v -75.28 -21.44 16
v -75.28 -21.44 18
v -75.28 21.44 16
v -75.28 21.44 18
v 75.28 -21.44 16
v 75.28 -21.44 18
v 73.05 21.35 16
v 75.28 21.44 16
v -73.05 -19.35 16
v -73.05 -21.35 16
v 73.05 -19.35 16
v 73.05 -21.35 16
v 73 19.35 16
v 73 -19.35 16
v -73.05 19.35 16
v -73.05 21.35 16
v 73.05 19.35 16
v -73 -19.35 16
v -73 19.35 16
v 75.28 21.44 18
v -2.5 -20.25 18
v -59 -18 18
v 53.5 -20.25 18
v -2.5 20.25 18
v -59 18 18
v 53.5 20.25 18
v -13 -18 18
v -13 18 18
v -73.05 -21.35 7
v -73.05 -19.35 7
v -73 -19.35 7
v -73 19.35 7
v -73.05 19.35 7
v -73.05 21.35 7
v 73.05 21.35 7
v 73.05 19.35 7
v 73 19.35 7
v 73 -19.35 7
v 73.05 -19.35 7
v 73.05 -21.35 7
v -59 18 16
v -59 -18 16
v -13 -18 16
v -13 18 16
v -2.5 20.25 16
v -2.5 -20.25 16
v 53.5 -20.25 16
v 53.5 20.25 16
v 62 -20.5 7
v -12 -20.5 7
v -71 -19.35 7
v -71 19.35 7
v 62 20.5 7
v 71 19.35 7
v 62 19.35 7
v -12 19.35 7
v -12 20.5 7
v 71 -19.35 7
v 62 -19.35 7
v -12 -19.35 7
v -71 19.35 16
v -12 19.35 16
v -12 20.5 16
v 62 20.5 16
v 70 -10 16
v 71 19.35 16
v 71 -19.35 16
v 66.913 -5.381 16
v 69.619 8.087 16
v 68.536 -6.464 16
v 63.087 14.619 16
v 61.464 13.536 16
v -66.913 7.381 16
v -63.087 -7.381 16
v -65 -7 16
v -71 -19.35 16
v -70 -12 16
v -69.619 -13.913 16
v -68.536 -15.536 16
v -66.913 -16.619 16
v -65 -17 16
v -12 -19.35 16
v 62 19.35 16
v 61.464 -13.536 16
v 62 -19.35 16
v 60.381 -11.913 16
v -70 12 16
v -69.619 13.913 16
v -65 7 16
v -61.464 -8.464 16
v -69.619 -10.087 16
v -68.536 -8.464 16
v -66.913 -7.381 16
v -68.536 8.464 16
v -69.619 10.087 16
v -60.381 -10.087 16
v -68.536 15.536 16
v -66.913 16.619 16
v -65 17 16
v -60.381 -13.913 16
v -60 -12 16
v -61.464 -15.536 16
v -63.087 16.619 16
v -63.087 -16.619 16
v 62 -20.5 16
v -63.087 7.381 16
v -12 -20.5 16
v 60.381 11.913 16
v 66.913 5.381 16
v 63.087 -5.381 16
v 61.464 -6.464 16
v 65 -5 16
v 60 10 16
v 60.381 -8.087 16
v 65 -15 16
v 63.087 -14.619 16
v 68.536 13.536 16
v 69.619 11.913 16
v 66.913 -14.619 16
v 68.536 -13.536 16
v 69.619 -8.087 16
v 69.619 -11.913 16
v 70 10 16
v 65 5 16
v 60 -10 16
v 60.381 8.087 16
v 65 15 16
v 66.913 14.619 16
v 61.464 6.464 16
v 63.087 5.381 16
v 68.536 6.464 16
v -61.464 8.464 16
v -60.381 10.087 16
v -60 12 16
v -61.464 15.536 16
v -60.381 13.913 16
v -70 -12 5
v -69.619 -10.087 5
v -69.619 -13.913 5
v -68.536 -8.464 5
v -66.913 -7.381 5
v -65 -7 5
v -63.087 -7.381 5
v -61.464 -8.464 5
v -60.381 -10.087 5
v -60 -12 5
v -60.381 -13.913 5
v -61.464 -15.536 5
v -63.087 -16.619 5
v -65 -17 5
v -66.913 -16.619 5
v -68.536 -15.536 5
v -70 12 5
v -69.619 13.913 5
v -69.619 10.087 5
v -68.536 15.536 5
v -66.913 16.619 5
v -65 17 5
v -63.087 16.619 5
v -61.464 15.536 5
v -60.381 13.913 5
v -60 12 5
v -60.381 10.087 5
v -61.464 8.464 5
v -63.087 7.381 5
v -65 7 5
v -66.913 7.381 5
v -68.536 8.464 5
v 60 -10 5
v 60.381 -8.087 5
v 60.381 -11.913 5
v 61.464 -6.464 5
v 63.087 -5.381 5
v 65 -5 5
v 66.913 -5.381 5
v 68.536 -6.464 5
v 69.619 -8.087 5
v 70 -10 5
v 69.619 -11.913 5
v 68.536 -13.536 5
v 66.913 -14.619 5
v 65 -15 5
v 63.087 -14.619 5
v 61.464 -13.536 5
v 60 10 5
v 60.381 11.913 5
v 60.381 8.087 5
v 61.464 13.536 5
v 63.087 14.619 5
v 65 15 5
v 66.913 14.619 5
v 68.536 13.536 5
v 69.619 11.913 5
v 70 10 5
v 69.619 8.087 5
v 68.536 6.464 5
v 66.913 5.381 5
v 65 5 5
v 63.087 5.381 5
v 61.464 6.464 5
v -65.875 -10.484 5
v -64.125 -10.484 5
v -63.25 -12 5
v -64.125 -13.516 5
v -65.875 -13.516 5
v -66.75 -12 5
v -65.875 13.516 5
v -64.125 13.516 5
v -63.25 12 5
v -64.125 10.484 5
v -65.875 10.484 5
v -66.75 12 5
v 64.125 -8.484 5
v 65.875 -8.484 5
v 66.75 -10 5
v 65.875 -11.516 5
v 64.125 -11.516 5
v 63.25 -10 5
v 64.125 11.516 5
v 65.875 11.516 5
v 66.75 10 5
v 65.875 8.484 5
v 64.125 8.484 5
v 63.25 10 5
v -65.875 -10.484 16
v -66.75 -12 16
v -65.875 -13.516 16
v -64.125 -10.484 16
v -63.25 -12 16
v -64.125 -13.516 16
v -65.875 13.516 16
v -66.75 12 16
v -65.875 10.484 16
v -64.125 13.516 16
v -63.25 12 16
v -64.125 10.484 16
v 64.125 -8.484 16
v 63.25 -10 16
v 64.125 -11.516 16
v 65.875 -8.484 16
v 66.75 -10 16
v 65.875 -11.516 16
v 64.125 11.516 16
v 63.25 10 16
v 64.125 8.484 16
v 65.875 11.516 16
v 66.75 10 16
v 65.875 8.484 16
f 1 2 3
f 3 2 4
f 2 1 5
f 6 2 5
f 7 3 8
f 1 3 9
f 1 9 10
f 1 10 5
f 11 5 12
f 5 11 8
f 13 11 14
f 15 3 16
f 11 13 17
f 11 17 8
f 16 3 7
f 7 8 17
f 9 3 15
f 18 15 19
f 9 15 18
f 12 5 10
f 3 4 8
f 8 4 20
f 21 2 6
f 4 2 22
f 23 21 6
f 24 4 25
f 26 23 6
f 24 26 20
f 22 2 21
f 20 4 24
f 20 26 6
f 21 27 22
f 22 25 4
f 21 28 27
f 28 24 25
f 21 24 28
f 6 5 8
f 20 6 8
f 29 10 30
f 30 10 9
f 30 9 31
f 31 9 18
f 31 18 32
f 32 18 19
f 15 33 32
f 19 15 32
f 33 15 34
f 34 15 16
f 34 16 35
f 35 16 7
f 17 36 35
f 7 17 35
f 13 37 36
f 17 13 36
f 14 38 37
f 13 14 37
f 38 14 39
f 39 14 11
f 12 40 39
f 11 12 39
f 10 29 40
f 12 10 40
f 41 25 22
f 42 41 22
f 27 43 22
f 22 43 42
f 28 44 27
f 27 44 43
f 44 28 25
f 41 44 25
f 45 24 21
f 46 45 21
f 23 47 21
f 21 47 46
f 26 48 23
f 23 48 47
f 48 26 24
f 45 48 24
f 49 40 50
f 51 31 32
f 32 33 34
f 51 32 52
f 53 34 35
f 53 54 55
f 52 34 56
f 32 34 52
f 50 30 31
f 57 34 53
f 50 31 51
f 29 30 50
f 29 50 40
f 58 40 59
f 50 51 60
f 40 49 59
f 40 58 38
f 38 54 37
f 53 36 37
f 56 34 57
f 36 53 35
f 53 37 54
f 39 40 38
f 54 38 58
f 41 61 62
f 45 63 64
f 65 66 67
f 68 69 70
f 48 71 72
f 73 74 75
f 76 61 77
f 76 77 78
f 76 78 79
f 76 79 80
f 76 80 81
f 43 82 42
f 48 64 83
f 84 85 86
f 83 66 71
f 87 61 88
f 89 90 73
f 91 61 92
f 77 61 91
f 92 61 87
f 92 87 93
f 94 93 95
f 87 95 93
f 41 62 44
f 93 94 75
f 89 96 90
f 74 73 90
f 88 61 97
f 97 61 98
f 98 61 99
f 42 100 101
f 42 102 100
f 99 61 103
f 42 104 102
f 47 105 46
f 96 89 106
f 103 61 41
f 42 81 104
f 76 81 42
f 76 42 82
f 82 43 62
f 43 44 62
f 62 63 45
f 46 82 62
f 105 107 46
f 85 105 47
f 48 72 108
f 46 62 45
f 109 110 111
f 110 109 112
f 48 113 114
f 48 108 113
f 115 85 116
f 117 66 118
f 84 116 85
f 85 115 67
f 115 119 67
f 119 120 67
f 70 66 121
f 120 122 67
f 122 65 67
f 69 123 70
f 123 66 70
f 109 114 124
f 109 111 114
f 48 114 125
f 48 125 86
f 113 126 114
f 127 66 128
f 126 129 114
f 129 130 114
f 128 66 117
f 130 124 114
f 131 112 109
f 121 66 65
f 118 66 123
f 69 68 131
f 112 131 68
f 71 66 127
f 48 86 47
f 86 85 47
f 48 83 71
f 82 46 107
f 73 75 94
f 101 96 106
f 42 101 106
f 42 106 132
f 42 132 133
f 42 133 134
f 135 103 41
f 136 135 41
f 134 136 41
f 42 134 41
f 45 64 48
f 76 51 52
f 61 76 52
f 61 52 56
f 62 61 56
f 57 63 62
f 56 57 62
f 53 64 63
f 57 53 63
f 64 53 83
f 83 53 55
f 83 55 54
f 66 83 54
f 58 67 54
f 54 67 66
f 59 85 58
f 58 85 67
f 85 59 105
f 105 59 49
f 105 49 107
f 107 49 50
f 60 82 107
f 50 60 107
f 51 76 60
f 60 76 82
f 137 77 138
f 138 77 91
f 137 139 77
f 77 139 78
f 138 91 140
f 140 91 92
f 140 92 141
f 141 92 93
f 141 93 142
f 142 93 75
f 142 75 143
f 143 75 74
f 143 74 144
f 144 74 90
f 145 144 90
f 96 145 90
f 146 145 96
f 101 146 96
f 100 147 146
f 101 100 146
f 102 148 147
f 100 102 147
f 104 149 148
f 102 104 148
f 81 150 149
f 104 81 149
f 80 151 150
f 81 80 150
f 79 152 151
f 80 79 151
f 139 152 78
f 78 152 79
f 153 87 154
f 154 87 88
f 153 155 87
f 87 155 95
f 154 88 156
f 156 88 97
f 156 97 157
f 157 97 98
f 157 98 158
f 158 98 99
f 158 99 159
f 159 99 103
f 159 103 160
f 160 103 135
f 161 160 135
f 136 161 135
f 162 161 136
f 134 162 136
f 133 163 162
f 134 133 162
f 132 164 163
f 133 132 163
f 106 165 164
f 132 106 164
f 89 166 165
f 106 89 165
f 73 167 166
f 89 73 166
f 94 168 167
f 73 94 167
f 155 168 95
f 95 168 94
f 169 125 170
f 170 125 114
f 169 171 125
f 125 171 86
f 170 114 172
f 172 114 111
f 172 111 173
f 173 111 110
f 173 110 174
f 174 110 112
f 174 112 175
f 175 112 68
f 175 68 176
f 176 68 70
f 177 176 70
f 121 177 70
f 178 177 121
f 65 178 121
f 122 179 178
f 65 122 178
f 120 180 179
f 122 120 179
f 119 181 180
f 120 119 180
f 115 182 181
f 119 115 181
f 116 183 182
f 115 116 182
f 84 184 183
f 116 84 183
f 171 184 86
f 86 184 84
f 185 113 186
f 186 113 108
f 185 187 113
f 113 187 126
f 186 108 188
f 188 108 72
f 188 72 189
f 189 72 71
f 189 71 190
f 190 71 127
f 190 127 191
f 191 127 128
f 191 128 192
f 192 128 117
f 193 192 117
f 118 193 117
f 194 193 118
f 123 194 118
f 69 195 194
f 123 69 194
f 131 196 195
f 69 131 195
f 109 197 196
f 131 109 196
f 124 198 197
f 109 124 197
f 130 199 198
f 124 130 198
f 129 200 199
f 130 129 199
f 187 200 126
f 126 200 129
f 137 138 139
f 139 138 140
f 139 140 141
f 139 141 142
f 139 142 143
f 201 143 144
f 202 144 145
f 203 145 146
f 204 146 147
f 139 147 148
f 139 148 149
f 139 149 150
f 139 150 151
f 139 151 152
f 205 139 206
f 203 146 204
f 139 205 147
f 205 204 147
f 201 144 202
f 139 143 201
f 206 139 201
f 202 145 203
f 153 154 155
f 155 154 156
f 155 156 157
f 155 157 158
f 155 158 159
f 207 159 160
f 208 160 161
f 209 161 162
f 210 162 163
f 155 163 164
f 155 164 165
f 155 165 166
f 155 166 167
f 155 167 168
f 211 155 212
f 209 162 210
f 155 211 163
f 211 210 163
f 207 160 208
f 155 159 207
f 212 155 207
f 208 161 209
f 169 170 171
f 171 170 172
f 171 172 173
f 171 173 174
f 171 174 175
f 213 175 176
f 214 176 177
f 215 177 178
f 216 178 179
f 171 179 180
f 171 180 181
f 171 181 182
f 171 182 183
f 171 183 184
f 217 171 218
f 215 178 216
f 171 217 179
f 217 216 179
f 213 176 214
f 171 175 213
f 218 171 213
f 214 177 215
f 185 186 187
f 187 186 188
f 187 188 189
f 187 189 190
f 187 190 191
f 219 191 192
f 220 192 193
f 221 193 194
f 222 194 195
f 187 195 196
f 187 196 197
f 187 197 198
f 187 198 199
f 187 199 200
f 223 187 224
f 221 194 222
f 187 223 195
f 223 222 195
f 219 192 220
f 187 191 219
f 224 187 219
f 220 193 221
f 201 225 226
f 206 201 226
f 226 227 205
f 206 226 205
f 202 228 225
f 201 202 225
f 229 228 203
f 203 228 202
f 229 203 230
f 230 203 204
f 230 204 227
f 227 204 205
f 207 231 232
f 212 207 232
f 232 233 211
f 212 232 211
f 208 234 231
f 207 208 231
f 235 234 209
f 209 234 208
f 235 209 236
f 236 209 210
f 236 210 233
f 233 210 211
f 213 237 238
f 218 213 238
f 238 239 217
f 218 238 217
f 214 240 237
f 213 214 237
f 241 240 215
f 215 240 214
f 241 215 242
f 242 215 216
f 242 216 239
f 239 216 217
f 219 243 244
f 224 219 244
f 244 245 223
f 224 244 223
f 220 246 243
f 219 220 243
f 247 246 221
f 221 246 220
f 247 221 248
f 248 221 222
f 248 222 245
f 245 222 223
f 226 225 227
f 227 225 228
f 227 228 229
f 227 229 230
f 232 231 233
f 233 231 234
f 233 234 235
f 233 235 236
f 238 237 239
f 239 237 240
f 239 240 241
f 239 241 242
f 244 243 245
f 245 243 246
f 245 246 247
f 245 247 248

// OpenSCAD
module trim_tftFacePlate_facia(){
	difference(){
		//mainBox
		translate([0,0,17]){
			color([0.6,0.8,0.2]) cube(size=[150.56,42.88,2],center=true);
		}
		//displayHole
		translate([25.5,0,16.75]){
			color([0.2,0.8,0.2]) cube(size=[56,40.5,5],center=true);
		}
		//keyPadHole
		translate([-36,0,16.75]){
			color([0.2,0.8,0.2]) cube(size=[46,36,5],center=true);
		}
	}
	//topAndBottomTrim
	difference(){
		translate([0,-20.35,12]){
			color([.3,.5,.2]) cube(size=[146.1,2,10],center=true);
		}
		translate([25,-17.5,10]){
			color([.3,.1,.2]) cube(size=[74,6,17],center=true);
		}
	}
	difference(){
		translate([0,20.35,12]){
			color([.3,.5,.2]) cube(size=[146.1,2,10],center=true);
		}
		translate([25,17.5,10]){
			color([.3,.1,.2]) cube(size=[74,6,17],center=true);
		}
	}
	//sideTrim
	translate([-72,0,12]){
		color([.3,.5,.2]) cube(size=[2,41.3,10],center=true);
	}	
	translate([72,0,12]){
		color([.3,.5,.2]) cube(size=[2,41.3,10],center=true);
	}	
	difference(){
		//screwBlocks
		translate([-65,12,11]){
			cylinder(r=5,h=12,center=true);
		}
		//screwHoles
		translate([-65,12,11]){
			cylinder(r=1.75,h=15,center=true);
		}
	}
	difference(){
		translate([-65,-12,11]){
			cylinder(r=5,h=12,center=true);
		}
		translate([-65,-12,11]){
			cylinder(r=1.75,h=15,center=true);
		}
	}
	difference(){
		translate([65,10,11]){
			cylinder(r=5,h=12,center=true);
		}
		translate([65,10,11]){
			cylinder(r=1.75,h=15,center=true);
		}
	}
	difference(){
		translate([65,-10,11]){
			cylinder(r=5,h=12,center=true);
		}
		translate([65,-10,11]){
			cylinder(r=1.75,h=15,center=true);
		}
	}
}

trim_tftFacePlate_facia();
